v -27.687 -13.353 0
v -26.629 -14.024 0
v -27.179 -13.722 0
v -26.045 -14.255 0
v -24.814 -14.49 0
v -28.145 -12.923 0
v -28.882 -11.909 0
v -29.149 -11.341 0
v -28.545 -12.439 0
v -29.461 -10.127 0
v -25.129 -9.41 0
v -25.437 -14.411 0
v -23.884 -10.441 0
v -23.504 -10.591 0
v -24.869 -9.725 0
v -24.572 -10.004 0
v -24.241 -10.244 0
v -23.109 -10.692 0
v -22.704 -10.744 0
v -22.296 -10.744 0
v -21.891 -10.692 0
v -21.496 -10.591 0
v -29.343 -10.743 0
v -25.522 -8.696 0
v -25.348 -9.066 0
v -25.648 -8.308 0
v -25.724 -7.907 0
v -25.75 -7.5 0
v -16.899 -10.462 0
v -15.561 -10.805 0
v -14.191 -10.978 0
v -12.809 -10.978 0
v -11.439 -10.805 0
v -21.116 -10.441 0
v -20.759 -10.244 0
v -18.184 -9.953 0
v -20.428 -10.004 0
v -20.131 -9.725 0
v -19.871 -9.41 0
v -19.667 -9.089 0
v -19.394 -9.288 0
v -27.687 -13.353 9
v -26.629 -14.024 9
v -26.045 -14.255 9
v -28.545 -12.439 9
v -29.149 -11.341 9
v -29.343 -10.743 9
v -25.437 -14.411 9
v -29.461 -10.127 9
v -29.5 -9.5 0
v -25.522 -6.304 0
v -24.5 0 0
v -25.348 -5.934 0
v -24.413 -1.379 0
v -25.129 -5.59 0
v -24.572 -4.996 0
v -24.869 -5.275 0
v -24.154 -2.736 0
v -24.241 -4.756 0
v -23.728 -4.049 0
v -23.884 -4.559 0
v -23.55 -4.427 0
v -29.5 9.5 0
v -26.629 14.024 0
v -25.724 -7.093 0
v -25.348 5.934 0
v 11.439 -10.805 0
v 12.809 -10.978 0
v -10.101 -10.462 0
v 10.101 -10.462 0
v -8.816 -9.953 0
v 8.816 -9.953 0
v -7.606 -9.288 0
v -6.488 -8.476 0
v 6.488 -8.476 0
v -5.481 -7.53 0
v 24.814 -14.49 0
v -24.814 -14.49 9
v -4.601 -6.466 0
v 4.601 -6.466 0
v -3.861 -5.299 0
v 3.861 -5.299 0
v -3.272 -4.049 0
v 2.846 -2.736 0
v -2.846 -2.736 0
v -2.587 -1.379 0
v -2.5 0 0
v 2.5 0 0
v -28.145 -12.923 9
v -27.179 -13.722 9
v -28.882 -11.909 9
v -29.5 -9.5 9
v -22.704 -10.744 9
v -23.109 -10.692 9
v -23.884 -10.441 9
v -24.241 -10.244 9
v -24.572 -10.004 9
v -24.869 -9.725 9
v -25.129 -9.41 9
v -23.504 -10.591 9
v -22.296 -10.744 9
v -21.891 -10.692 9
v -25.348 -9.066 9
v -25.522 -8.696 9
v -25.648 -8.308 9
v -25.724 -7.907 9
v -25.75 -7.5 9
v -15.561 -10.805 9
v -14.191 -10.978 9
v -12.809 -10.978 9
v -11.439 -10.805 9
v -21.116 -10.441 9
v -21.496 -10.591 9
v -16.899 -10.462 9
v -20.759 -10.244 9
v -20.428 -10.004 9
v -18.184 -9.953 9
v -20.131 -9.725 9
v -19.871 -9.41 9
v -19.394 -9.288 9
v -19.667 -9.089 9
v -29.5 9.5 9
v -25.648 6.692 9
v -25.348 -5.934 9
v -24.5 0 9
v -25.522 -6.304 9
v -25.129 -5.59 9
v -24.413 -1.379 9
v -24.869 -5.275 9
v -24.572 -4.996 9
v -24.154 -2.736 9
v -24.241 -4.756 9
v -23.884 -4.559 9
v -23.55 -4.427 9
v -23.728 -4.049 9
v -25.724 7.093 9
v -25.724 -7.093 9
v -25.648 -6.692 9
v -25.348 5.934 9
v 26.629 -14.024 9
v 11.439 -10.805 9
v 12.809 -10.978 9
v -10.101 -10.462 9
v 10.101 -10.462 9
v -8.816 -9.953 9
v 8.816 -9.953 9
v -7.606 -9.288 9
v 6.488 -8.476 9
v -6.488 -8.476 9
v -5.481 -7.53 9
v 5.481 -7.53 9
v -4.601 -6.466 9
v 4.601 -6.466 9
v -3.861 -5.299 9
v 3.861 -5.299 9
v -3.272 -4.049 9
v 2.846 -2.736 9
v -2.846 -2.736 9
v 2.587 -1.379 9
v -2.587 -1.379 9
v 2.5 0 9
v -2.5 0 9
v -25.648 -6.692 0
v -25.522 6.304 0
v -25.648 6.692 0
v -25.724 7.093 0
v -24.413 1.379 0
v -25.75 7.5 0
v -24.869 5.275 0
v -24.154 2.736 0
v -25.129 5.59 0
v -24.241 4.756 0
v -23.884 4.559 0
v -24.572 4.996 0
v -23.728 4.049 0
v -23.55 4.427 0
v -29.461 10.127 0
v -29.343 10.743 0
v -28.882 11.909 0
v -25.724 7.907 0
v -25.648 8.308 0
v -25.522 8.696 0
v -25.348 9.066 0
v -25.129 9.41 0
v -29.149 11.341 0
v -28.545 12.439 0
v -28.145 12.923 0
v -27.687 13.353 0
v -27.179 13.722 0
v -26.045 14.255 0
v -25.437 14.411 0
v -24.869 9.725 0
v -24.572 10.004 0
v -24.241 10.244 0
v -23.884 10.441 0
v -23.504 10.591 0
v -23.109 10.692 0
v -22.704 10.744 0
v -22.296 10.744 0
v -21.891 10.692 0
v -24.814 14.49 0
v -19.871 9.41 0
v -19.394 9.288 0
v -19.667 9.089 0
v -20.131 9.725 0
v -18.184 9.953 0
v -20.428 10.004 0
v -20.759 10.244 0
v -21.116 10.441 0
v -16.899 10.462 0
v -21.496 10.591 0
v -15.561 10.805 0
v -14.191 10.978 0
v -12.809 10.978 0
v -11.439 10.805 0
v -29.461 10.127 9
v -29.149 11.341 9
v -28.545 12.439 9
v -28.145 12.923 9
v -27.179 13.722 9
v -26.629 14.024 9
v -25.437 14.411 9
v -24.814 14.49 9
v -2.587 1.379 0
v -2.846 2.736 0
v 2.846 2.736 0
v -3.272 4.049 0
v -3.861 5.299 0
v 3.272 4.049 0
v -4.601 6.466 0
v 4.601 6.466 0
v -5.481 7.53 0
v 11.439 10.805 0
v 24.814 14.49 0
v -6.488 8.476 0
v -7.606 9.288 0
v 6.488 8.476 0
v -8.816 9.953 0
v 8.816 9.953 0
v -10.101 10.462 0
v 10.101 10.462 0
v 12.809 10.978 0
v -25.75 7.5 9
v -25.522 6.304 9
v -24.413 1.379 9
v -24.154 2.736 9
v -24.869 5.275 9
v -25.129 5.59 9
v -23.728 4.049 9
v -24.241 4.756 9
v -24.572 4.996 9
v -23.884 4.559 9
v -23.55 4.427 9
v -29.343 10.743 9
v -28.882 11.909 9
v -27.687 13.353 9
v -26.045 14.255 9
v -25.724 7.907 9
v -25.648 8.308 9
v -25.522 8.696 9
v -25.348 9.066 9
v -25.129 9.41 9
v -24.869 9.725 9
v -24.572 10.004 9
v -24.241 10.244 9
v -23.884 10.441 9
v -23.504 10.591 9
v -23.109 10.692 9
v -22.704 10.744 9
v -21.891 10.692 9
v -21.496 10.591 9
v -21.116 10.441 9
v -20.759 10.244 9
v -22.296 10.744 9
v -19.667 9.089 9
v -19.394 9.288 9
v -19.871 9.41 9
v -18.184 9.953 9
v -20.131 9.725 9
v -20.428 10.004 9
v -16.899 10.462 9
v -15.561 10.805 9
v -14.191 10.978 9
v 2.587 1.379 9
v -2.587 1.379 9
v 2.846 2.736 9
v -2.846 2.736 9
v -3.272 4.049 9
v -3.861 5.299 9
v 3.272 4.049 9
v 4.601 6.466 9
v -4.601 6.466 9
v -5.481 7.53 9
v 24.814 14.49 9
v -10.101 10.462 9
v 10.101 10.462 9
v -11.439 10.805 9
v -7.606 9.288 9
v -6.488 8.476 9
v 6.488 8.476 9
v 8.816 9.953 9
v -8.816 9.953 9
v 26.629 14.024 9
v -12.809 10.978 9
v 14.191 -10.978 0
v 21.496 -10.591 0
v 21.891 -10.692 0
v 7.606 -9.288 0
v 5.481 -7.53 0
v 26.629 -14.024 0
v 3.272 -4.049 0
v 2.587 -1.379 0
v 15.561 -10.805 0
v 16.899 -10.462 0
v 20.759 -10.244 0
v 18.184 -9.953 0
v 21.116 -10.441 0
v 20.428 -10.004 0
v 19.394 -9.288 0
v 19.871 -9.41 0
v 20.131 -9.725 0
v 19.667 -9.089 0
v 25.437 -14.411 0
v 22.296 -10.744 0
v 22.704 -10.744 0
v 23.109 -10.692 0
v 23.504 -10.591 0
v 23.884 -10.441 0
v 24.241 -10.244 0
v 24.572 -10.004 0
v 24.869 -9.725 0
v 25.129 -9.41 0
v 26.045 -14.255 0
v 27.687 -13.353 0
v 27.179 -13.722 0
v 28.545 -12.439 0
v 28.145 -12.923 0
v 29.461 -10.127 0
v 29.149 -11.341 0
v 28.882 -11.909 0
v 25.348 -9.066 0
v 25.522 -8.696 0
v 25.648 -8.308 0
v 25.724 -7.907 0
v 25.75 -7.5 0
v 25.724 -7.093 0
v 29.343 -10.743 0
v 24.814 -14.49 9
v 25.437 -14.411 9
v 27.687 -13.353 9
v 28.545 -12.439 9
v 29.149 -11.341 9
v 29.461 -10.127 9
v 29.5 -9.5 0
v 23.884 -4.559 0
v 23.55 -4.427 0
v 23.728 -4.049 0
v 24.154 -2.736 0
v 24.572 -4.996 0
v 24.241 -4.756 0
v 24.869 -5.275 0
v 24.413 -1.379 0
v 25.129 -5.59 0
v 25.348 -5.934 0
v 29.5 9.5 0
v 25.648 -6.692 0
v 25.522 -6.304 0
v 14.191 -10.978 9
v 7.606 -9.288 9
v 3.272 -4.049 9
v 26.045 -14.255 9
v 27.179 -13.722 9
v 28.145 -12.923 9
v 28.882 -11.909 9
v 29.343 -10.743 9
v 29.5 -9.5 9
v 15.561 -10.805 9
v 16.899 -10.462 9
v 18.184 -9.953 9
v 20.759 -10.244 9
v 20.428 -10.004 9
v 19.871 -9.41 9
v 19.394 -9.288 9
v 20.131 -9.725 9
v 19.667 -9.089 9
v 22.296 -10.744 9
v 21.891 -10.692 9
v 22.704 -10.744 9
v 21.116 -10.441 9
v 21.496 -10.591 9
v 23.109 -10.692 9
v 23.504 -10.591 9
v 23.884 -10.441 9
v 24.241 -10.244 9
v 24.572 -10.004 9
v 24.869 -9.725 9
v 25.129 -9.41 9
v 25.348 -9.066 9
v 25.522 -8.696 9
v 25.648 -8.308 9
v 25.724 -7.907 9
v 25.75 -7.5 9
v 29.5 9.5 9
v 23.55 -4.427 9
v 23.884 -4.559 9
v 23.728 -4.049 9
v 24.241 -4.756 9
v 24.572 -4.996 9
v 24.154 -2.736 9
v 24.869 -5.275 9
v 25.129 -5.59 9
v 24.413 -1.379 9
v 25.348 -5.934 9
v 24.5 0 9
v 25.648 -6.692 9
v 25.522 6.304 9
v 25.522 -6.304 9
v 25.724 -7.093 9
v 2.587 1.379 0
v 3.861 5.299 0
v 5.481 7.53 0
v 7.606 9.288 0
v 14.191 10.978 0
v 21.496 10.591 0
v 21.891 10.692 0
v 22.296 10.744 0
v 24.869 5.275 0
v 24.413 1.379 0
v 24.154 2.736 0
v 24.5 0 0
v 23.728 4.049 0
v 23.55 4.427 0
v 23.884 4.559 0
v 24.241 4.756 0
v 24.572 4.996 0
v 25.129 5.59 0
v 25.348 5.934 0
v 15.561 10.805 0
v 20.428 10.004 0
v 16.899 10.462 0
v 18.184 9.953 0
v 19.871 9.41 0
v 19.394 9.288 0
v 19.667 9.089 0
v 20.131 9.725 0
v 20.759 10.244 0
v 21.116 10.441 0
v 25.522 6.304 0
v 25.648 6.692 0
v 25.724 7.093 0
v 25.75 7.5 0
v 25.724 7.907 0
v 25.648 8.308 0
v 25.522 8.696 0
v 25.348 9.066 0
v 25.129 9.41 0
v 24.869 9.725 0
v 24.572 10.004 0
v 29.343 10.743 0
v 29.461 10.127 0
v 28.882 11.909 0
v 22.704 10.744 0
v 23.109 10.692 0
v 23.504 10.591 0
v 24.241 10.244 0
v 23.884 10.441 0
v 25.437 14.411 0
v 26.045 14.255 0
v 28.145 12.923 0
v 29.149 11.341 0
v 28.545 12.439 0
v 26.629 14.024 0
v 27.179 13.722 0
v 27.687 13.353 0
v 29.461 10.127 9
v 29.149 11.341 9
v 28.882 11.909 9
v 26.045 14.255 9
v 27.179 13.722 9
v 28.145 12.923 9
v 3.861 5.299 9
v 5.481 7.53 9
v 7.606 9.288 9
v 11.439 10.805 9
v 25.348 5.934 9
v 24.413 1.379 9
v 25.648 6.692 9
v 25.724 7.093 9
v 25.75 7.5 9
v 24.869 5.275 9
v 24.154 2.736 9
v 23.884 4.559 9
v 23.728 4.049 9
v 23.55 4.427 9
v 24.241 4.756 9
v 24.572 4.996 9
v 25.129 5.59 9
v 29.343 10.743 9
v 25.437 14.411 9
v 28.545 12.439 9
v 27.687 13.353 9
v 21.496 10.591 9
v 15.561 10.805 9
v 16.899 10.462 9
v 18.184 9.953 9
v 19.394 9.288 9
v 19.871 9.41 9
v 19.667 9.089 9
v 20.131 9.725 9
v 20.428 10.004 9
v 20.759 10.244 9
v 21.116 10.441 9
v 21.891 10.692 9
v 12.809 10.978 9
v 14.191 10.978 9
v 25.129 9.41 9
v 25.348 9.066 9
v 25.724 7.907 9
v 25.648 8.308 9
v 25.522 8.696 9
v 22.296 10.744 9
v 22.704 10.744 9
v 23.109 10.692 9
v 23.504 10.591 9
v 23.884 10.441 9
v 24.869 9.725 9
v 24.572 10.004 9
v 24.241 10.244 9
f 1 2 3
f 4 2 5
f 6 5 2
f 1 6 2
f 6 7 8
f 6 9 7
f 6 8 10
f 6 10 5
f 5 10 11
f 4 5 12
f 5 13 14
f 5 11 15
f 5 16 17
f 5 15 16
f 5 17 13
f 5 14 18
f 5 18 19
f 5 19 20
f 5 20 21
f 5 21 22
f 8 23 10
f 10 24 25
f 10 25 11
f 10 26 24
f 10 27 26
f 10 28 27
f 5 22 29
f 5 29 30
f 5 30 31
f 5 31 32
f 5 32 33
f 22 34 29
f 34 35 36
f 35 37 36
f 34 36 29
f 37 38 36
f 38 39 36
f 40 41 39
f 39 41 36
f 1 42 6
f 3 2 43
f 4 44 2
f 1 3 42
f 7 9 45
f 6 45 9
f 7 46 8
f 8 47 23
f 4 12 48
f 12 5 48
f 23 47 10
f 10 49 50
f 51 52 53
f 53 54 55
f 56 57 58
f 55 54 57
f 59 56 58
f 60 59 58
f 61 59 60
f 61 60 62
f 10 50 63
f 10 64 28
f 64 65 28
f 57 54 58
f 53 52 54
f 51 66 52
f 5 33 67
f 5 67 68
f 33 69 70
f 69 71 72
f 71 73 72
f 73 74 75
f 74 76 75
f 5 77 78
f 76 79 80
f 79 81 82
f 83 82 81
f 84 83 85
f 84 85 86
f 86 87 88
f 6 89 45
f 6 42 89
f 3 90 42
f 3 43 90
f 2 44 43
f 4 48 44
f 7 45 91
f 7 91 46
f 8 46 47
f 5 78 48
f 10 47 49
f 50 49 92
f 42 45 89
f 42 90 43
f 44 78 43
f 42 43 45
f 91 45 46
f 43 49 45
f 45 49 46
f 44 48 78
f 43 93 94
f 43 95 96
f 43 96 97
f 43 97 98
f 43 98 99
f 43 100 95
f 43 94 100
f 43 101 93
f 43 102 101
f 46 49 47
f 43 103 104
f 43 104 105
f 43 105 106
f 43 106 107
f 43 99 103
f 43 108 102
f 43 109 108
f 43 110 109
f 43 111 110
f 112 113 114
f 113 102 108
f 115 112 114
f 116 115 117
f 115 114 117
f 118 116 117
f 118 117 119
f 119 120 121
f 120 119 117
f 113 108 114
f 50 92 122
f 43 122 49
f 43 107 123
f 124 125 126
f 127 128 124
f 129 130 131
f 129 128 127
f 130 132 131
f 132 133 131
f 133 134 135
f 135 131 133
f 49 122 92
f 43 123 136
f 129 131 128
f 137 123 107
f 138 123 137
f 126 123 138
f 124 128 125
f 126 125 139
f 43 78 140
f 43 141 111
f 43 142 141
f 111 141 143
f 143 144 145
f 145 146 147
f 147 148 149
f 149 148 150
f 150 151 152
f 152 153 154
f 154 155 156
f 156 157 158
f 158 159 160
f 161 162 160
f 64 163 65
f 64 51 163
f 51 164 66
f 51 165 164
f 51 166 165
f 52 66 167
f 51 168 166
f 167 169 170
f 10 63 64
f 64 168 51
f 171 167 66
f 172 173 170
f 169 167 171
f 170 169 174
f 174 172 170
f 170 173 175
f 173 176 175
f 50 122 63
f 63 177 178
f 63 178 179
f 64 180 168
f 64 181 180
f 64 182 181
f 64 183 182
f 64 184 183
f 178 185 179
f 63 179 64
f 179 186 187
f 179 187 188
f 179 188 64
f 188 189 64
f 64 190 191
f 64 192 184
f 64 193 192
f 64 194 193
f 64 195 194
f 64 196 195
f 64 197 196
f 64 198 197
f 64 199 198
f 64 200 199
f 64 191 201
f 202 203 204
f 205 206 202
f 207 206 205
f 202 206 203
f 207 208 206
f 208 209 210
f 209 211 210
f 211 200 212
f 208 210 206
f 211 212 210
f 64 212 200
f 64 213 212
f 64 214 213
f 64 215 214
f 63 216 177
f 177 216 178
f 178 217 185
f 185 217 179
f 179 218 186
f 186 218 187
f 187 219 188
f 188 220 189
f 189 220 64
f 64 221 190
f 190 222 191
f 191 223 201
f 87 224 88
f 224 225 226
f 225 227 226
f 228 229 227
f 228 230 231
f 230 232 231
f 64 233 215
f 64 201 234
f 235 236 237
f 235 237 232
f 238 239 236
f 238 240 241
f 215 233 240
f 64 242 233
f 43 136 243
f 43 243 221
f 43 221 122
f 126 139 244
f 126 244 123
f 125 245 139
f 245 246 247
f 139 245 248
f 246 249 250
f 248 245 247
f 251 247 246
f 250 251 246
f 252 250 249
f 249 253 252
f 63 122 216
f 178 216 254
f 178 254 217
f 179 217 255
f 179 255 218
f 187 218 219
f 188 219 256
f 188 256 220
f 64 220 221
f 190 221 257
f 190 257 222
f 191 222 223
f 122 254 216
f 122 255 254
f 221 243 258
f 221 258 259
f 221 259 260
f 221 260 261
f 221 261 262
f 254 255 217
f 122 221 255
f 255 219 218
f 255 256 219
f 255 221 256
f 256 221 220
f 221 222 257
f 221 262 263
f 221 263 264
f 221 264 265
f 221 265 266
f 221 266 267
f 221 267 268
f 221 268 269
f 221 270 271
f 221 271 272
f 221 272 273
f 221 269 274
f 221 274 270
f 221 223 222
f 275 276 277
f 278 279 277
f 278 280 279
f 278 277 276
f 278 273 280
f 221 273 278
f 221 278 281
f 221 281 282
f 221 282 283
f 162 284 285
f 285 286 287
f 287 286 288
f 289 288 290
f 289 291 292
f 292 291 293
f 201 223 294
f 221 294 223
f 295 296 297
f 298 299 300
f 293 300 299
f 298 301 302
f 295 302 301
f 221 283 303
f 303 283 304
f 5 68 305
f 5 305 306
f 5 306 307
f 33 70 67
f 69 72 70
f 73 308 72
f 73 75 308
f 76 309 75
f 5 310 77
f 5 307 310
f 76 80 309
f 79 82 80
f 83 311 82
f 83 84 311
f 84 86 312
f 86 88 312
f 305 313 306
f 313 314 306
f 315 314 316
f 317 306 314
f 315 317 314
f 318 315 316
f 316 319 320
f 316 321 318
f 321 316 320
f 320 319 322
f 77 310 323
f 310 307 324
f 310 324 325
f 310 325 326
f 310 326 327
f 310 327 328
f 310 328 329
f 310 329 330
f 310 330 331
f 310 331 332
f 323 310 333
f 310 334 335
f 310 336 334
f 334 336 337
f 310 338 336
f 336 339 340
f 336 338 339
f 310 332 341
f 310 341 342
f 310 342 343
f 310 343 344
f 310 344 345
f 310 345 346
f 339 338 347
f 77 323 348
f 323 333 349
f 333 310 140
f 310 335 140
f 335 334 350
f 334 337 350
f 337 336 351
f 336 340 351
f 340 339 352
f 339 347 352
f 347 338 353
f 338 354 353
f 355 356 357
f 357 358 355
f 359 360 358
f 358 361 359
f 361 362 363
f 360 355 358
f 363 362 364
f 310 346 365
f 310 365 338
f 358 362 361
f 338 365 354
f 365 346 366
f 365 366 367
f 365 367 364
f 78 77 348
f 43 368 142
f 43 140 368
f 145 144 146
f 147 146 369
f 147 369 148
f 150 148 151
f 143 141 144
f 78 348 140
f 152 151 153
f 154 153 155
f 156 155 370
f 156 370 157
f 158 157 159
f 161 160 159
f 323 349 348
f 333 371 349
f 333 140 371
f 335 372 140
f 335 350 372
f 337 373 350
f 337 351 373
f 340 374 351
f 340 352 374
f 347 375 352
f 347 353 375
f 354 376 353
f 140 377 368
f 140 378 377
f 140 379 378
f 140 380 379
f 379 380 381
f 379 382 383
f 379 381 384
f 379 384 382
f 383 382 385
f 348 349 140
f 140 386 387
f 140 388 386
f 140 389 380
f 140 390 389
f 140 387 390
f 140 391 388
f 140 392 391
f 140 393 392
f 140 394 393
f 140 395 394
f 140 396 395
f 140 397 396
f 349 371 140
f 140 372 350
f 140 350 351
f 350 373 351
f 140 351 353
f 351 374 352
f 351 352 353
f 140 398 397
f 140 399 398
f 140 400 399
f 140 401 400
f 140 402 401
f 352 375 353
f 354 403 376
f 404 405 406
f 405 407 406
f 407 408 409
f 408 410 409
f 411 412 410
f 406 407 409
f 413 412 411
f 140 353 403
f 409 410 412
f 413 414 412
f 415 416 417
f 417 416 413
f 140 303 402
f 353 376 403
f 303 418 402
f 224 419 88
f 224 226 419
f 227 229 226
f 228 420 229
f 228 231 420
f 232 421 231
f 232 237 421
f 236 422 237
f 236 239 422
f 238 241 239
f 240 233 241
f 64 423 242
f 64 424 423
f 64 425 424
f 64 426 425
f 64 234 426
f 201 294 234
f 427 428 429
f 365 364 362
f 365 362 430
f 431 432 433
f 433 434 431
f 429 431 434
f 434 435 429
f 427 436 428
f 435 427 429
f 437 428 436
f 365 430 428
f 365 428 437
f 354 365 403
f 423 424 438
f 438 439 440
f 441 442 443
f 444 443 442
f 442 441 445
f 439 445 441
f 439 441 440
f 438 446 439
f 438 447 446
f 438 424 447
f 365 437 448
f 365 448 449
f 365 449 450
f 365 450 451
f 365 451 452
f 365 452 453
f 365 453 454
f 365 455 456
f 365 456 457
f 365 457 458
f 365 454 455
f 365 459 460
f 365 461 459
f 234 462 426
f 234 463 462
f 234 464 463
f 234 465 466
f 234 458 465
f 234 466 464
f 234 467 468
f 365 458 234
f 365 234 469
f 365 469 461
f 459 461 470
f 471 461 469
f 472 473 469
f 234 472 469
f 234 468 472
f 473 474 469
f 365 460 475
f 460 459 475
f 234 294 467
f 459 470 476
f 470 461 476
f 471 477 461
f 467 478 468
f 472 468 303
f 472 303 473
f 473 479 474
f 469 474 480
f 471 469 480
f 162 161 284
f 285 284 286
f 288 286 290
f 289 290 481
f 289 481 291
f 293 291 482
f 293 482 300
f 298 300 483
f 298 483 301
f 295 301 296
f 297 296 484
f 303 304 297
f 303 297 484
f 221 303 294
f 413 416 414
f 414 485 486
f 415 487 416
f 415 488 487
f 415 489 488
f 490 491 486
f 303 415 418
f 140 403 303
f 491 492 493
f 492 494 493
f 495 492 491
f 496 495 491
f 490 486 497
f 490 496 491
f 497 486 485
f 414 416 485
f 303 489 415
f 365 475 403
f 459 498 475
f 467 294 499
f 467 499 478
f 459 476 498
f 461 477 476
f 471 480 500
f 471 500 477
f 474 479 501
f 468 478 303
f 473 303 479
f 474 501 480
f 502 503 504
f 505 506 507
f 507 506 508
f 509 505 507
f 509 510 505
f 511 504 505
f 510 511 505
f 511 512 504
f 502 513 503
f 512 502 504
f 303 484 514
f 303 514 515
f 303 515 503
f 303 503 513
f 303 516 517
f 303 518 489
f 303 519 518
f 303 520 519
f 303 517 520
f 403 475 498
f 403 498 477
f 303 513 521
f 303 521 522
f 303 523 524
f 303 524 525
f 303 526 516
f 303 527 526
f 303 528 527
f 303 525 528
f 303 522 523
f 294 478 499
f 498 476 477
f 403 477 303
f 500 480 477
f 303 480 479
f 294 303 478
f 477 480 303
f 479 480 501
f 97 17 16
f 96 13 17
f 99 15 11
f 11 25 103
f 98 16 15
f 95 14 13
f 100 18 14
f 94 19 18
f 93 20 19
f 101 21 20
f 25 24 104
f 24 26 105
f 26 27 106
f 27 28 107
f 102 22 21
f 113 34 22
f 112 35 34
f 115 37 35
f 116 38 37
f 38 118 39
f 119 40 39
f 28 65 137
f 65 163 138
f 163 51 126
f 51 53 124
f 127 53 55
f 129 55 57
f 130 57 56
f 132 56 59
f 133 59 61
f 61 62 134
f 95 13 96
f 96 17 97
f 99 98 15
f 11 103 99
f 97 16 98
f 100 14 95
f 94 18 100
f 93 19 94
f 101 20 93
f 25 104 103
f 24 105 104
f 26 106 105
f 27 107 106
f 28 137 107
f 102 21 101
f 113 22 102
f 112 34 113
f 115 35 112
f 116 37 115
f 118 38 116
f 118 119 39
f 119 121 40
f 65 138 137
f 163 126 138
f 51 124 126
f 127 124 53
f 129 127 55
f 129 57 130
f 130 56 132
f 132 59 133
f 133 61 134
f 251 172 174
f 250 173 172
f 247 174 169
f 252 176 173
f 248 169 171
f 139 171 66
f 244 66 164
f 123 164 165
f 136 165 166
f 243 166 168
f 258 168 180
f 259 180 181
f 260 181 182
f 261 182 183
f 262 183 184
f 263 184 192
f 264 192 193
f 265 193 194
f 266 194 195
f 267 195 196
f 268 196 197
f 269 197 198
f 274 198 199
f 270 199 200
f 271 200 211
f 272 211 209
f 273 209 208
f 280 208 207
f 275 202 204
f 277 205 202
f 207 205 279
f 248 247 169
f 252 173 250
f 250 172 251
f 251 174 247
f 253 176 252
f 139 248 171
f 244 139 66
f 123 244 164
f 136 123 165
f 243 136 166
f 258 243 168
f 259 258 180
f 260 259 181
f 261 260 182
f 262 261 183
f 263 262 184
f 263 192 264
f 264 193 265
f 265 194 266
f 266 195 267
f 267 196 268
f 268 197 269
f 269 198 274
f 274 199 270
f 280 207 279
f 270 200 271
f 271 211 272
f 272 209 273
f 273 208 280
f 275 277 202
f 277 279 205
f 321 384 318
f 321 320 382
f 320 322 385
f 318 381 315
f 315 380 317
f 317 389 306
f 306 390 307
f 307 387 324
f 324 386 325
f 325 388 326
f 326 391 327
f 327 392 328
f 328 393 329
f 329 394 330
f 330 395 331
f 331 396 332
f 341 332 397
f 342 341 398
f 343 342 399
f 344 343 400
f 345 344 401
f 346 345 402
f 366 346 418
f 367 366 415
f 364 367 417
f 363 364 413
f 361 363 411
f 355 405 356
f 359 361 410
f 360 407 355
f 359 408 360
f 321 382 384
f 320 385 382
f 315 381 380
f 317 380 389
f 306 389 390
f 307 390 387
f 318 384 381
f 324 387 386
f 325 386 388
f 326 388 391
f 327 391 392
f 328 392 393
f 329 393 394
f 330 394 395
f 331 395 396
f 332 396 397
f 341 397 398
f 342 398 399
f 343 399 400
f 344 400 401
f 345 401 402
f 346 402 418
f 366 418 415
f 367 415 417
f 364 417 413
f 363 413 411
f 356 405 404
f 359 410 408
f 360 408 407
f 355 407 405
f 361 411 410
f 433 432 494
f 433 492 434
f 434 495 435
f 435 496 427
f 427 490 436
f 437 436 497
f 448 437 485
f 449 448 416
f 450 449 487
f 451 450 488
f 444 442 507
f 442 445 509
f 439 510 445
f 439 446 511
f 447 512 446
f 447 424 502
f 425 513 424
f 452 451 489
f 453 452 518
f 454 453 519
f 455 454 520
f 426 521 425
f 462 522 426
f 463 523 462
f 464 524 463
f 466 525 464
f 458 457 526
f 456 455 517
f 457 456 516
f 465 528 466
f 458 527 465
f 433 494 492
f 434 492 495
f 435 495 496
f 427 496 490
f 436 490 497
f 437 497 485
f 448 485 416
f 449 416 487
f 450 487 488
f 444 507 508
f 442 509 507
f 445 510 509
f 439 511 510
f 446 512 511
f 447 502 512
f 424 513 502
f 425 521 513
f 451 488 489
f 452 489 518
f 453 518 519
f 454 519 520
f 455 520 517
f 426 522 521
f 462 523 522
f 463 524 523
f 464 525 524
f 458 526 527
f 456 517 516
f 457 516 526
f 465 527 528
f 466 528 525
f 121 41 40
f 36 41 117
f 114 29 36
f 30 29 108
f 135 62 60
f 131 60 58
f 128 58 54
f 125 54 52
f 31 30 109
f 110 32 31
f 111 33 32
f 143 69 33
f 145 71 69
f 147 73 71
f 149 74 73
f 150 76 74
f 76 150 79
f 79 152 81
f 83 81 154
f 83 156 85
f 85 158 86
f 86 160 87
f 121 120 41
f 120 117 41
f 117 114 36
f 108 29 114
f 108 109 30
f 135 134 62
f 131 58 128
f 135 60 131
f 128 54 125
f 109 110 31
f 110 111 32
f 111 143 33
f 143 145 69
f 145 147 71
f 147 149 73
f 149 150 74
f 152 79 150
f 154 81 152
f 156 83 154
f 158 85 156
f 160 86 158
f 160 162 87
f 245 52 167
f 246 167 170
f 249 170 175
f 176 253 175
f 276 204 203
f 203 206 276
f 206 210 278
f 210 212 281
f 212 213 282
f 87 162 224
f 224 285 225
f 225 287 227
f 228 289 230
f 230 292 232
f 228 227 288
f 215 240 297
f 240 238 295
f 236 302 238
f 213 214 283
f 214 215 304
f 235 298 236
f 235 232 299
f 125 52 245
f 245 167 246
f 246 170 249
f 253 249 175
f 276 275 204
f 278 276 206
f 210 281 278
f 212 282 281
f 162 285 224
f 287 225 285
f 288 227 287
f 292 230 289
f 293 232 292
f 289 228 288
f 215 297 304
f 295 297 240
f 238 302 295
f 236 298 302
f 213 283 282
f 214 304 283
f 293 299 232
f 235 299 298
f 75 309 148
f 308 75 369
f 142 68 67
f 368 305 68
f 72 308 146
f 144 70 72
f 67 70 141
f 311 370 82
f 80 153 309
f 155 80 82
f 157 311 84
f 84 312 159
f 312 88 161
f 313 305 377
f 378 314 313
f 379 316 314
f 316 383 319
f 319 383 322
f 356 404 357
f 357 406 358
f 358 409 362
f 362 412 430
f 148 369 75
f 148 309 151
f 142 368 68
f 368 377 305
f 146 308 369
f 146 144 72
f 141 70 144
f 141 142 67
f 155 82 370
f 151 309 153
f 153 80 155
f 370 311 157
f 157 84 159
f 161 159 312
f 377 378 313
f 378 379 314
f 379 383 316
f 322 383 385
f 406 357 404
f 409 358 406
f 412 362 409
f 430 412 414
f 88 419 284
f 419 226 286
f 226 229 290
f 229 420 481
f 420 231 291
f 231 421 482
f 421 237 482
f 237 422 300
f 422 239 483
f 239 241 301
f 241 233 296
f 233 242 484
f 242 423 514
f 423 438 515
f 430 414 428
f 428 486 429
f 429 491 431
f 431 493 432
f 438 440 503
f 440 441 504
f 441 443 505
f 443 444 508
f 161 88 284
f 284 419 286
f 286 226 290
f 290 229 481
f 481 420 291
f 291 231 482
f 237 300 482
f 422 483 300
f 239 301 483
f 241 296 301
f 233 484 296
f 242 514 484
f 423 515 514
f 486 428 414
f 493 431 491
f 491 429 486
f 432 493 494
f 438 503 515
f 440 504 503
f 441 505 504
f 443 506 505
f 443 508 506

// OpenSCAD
$fn = 50;

difference() {
	union() {
		hull() {
			translate(v = [-24.5, 9.5, 0]) {
				cylinder(h = 9, r = 5);
			}
			translate(v = [24.5, 9.5, 0]) {
				cylinder(h = 9, r = 5);
			}
			translate(v = [-24.5, -9.5, 0]) {
				cylinder(h = 9, r = 5);
			}
			translate(v = [24.5, -9.5, 0]) {
				cylinder(h = 9, r = 5);
			}
		}
	}
	union() {
		translate(v = [-22.5, -7.5, -100.0]) {
			cylinder(h = 200, r = 3.25);
		}
		translate(v = [-22.5, 7.5, -100.0]) {
			cylinder(h = 200, r = 3.25);
		}
		translate(v = [22.5, -7.5, -100.0]) {
			cylinder(h = 200, r = 3.25);
		}
		translate(v = [22.5, 7.5, -100.0]) {
			cylinder(h = 200, r = 3.25);
		}
		translate(v = [-22.5, -7.5, -100.0]) {
			cylinder(h = 200, r = 1.8);
		}
		translate(v = [-22.5, 7.5, -100.0]) {
			cylinder(h = 200, r = 1.8);
		}
		translate(v = [22.5, -7.5, -100.0]) {
			cylinder(h = 200, r = 1.8);
		}
		translate(v = [22.5, 7.5, -100.0]) {
			cylinder(h = 200, r = 1.8);
		}
		translate(v = [-13.5, 0, 0.0]) {
			cylinder(h = 9, r = 11.0);
		}
		translate(v = [13.5, 0, 0.0]) {
			cylinder(h = 9, r = 11.0);
		}
	}
}
